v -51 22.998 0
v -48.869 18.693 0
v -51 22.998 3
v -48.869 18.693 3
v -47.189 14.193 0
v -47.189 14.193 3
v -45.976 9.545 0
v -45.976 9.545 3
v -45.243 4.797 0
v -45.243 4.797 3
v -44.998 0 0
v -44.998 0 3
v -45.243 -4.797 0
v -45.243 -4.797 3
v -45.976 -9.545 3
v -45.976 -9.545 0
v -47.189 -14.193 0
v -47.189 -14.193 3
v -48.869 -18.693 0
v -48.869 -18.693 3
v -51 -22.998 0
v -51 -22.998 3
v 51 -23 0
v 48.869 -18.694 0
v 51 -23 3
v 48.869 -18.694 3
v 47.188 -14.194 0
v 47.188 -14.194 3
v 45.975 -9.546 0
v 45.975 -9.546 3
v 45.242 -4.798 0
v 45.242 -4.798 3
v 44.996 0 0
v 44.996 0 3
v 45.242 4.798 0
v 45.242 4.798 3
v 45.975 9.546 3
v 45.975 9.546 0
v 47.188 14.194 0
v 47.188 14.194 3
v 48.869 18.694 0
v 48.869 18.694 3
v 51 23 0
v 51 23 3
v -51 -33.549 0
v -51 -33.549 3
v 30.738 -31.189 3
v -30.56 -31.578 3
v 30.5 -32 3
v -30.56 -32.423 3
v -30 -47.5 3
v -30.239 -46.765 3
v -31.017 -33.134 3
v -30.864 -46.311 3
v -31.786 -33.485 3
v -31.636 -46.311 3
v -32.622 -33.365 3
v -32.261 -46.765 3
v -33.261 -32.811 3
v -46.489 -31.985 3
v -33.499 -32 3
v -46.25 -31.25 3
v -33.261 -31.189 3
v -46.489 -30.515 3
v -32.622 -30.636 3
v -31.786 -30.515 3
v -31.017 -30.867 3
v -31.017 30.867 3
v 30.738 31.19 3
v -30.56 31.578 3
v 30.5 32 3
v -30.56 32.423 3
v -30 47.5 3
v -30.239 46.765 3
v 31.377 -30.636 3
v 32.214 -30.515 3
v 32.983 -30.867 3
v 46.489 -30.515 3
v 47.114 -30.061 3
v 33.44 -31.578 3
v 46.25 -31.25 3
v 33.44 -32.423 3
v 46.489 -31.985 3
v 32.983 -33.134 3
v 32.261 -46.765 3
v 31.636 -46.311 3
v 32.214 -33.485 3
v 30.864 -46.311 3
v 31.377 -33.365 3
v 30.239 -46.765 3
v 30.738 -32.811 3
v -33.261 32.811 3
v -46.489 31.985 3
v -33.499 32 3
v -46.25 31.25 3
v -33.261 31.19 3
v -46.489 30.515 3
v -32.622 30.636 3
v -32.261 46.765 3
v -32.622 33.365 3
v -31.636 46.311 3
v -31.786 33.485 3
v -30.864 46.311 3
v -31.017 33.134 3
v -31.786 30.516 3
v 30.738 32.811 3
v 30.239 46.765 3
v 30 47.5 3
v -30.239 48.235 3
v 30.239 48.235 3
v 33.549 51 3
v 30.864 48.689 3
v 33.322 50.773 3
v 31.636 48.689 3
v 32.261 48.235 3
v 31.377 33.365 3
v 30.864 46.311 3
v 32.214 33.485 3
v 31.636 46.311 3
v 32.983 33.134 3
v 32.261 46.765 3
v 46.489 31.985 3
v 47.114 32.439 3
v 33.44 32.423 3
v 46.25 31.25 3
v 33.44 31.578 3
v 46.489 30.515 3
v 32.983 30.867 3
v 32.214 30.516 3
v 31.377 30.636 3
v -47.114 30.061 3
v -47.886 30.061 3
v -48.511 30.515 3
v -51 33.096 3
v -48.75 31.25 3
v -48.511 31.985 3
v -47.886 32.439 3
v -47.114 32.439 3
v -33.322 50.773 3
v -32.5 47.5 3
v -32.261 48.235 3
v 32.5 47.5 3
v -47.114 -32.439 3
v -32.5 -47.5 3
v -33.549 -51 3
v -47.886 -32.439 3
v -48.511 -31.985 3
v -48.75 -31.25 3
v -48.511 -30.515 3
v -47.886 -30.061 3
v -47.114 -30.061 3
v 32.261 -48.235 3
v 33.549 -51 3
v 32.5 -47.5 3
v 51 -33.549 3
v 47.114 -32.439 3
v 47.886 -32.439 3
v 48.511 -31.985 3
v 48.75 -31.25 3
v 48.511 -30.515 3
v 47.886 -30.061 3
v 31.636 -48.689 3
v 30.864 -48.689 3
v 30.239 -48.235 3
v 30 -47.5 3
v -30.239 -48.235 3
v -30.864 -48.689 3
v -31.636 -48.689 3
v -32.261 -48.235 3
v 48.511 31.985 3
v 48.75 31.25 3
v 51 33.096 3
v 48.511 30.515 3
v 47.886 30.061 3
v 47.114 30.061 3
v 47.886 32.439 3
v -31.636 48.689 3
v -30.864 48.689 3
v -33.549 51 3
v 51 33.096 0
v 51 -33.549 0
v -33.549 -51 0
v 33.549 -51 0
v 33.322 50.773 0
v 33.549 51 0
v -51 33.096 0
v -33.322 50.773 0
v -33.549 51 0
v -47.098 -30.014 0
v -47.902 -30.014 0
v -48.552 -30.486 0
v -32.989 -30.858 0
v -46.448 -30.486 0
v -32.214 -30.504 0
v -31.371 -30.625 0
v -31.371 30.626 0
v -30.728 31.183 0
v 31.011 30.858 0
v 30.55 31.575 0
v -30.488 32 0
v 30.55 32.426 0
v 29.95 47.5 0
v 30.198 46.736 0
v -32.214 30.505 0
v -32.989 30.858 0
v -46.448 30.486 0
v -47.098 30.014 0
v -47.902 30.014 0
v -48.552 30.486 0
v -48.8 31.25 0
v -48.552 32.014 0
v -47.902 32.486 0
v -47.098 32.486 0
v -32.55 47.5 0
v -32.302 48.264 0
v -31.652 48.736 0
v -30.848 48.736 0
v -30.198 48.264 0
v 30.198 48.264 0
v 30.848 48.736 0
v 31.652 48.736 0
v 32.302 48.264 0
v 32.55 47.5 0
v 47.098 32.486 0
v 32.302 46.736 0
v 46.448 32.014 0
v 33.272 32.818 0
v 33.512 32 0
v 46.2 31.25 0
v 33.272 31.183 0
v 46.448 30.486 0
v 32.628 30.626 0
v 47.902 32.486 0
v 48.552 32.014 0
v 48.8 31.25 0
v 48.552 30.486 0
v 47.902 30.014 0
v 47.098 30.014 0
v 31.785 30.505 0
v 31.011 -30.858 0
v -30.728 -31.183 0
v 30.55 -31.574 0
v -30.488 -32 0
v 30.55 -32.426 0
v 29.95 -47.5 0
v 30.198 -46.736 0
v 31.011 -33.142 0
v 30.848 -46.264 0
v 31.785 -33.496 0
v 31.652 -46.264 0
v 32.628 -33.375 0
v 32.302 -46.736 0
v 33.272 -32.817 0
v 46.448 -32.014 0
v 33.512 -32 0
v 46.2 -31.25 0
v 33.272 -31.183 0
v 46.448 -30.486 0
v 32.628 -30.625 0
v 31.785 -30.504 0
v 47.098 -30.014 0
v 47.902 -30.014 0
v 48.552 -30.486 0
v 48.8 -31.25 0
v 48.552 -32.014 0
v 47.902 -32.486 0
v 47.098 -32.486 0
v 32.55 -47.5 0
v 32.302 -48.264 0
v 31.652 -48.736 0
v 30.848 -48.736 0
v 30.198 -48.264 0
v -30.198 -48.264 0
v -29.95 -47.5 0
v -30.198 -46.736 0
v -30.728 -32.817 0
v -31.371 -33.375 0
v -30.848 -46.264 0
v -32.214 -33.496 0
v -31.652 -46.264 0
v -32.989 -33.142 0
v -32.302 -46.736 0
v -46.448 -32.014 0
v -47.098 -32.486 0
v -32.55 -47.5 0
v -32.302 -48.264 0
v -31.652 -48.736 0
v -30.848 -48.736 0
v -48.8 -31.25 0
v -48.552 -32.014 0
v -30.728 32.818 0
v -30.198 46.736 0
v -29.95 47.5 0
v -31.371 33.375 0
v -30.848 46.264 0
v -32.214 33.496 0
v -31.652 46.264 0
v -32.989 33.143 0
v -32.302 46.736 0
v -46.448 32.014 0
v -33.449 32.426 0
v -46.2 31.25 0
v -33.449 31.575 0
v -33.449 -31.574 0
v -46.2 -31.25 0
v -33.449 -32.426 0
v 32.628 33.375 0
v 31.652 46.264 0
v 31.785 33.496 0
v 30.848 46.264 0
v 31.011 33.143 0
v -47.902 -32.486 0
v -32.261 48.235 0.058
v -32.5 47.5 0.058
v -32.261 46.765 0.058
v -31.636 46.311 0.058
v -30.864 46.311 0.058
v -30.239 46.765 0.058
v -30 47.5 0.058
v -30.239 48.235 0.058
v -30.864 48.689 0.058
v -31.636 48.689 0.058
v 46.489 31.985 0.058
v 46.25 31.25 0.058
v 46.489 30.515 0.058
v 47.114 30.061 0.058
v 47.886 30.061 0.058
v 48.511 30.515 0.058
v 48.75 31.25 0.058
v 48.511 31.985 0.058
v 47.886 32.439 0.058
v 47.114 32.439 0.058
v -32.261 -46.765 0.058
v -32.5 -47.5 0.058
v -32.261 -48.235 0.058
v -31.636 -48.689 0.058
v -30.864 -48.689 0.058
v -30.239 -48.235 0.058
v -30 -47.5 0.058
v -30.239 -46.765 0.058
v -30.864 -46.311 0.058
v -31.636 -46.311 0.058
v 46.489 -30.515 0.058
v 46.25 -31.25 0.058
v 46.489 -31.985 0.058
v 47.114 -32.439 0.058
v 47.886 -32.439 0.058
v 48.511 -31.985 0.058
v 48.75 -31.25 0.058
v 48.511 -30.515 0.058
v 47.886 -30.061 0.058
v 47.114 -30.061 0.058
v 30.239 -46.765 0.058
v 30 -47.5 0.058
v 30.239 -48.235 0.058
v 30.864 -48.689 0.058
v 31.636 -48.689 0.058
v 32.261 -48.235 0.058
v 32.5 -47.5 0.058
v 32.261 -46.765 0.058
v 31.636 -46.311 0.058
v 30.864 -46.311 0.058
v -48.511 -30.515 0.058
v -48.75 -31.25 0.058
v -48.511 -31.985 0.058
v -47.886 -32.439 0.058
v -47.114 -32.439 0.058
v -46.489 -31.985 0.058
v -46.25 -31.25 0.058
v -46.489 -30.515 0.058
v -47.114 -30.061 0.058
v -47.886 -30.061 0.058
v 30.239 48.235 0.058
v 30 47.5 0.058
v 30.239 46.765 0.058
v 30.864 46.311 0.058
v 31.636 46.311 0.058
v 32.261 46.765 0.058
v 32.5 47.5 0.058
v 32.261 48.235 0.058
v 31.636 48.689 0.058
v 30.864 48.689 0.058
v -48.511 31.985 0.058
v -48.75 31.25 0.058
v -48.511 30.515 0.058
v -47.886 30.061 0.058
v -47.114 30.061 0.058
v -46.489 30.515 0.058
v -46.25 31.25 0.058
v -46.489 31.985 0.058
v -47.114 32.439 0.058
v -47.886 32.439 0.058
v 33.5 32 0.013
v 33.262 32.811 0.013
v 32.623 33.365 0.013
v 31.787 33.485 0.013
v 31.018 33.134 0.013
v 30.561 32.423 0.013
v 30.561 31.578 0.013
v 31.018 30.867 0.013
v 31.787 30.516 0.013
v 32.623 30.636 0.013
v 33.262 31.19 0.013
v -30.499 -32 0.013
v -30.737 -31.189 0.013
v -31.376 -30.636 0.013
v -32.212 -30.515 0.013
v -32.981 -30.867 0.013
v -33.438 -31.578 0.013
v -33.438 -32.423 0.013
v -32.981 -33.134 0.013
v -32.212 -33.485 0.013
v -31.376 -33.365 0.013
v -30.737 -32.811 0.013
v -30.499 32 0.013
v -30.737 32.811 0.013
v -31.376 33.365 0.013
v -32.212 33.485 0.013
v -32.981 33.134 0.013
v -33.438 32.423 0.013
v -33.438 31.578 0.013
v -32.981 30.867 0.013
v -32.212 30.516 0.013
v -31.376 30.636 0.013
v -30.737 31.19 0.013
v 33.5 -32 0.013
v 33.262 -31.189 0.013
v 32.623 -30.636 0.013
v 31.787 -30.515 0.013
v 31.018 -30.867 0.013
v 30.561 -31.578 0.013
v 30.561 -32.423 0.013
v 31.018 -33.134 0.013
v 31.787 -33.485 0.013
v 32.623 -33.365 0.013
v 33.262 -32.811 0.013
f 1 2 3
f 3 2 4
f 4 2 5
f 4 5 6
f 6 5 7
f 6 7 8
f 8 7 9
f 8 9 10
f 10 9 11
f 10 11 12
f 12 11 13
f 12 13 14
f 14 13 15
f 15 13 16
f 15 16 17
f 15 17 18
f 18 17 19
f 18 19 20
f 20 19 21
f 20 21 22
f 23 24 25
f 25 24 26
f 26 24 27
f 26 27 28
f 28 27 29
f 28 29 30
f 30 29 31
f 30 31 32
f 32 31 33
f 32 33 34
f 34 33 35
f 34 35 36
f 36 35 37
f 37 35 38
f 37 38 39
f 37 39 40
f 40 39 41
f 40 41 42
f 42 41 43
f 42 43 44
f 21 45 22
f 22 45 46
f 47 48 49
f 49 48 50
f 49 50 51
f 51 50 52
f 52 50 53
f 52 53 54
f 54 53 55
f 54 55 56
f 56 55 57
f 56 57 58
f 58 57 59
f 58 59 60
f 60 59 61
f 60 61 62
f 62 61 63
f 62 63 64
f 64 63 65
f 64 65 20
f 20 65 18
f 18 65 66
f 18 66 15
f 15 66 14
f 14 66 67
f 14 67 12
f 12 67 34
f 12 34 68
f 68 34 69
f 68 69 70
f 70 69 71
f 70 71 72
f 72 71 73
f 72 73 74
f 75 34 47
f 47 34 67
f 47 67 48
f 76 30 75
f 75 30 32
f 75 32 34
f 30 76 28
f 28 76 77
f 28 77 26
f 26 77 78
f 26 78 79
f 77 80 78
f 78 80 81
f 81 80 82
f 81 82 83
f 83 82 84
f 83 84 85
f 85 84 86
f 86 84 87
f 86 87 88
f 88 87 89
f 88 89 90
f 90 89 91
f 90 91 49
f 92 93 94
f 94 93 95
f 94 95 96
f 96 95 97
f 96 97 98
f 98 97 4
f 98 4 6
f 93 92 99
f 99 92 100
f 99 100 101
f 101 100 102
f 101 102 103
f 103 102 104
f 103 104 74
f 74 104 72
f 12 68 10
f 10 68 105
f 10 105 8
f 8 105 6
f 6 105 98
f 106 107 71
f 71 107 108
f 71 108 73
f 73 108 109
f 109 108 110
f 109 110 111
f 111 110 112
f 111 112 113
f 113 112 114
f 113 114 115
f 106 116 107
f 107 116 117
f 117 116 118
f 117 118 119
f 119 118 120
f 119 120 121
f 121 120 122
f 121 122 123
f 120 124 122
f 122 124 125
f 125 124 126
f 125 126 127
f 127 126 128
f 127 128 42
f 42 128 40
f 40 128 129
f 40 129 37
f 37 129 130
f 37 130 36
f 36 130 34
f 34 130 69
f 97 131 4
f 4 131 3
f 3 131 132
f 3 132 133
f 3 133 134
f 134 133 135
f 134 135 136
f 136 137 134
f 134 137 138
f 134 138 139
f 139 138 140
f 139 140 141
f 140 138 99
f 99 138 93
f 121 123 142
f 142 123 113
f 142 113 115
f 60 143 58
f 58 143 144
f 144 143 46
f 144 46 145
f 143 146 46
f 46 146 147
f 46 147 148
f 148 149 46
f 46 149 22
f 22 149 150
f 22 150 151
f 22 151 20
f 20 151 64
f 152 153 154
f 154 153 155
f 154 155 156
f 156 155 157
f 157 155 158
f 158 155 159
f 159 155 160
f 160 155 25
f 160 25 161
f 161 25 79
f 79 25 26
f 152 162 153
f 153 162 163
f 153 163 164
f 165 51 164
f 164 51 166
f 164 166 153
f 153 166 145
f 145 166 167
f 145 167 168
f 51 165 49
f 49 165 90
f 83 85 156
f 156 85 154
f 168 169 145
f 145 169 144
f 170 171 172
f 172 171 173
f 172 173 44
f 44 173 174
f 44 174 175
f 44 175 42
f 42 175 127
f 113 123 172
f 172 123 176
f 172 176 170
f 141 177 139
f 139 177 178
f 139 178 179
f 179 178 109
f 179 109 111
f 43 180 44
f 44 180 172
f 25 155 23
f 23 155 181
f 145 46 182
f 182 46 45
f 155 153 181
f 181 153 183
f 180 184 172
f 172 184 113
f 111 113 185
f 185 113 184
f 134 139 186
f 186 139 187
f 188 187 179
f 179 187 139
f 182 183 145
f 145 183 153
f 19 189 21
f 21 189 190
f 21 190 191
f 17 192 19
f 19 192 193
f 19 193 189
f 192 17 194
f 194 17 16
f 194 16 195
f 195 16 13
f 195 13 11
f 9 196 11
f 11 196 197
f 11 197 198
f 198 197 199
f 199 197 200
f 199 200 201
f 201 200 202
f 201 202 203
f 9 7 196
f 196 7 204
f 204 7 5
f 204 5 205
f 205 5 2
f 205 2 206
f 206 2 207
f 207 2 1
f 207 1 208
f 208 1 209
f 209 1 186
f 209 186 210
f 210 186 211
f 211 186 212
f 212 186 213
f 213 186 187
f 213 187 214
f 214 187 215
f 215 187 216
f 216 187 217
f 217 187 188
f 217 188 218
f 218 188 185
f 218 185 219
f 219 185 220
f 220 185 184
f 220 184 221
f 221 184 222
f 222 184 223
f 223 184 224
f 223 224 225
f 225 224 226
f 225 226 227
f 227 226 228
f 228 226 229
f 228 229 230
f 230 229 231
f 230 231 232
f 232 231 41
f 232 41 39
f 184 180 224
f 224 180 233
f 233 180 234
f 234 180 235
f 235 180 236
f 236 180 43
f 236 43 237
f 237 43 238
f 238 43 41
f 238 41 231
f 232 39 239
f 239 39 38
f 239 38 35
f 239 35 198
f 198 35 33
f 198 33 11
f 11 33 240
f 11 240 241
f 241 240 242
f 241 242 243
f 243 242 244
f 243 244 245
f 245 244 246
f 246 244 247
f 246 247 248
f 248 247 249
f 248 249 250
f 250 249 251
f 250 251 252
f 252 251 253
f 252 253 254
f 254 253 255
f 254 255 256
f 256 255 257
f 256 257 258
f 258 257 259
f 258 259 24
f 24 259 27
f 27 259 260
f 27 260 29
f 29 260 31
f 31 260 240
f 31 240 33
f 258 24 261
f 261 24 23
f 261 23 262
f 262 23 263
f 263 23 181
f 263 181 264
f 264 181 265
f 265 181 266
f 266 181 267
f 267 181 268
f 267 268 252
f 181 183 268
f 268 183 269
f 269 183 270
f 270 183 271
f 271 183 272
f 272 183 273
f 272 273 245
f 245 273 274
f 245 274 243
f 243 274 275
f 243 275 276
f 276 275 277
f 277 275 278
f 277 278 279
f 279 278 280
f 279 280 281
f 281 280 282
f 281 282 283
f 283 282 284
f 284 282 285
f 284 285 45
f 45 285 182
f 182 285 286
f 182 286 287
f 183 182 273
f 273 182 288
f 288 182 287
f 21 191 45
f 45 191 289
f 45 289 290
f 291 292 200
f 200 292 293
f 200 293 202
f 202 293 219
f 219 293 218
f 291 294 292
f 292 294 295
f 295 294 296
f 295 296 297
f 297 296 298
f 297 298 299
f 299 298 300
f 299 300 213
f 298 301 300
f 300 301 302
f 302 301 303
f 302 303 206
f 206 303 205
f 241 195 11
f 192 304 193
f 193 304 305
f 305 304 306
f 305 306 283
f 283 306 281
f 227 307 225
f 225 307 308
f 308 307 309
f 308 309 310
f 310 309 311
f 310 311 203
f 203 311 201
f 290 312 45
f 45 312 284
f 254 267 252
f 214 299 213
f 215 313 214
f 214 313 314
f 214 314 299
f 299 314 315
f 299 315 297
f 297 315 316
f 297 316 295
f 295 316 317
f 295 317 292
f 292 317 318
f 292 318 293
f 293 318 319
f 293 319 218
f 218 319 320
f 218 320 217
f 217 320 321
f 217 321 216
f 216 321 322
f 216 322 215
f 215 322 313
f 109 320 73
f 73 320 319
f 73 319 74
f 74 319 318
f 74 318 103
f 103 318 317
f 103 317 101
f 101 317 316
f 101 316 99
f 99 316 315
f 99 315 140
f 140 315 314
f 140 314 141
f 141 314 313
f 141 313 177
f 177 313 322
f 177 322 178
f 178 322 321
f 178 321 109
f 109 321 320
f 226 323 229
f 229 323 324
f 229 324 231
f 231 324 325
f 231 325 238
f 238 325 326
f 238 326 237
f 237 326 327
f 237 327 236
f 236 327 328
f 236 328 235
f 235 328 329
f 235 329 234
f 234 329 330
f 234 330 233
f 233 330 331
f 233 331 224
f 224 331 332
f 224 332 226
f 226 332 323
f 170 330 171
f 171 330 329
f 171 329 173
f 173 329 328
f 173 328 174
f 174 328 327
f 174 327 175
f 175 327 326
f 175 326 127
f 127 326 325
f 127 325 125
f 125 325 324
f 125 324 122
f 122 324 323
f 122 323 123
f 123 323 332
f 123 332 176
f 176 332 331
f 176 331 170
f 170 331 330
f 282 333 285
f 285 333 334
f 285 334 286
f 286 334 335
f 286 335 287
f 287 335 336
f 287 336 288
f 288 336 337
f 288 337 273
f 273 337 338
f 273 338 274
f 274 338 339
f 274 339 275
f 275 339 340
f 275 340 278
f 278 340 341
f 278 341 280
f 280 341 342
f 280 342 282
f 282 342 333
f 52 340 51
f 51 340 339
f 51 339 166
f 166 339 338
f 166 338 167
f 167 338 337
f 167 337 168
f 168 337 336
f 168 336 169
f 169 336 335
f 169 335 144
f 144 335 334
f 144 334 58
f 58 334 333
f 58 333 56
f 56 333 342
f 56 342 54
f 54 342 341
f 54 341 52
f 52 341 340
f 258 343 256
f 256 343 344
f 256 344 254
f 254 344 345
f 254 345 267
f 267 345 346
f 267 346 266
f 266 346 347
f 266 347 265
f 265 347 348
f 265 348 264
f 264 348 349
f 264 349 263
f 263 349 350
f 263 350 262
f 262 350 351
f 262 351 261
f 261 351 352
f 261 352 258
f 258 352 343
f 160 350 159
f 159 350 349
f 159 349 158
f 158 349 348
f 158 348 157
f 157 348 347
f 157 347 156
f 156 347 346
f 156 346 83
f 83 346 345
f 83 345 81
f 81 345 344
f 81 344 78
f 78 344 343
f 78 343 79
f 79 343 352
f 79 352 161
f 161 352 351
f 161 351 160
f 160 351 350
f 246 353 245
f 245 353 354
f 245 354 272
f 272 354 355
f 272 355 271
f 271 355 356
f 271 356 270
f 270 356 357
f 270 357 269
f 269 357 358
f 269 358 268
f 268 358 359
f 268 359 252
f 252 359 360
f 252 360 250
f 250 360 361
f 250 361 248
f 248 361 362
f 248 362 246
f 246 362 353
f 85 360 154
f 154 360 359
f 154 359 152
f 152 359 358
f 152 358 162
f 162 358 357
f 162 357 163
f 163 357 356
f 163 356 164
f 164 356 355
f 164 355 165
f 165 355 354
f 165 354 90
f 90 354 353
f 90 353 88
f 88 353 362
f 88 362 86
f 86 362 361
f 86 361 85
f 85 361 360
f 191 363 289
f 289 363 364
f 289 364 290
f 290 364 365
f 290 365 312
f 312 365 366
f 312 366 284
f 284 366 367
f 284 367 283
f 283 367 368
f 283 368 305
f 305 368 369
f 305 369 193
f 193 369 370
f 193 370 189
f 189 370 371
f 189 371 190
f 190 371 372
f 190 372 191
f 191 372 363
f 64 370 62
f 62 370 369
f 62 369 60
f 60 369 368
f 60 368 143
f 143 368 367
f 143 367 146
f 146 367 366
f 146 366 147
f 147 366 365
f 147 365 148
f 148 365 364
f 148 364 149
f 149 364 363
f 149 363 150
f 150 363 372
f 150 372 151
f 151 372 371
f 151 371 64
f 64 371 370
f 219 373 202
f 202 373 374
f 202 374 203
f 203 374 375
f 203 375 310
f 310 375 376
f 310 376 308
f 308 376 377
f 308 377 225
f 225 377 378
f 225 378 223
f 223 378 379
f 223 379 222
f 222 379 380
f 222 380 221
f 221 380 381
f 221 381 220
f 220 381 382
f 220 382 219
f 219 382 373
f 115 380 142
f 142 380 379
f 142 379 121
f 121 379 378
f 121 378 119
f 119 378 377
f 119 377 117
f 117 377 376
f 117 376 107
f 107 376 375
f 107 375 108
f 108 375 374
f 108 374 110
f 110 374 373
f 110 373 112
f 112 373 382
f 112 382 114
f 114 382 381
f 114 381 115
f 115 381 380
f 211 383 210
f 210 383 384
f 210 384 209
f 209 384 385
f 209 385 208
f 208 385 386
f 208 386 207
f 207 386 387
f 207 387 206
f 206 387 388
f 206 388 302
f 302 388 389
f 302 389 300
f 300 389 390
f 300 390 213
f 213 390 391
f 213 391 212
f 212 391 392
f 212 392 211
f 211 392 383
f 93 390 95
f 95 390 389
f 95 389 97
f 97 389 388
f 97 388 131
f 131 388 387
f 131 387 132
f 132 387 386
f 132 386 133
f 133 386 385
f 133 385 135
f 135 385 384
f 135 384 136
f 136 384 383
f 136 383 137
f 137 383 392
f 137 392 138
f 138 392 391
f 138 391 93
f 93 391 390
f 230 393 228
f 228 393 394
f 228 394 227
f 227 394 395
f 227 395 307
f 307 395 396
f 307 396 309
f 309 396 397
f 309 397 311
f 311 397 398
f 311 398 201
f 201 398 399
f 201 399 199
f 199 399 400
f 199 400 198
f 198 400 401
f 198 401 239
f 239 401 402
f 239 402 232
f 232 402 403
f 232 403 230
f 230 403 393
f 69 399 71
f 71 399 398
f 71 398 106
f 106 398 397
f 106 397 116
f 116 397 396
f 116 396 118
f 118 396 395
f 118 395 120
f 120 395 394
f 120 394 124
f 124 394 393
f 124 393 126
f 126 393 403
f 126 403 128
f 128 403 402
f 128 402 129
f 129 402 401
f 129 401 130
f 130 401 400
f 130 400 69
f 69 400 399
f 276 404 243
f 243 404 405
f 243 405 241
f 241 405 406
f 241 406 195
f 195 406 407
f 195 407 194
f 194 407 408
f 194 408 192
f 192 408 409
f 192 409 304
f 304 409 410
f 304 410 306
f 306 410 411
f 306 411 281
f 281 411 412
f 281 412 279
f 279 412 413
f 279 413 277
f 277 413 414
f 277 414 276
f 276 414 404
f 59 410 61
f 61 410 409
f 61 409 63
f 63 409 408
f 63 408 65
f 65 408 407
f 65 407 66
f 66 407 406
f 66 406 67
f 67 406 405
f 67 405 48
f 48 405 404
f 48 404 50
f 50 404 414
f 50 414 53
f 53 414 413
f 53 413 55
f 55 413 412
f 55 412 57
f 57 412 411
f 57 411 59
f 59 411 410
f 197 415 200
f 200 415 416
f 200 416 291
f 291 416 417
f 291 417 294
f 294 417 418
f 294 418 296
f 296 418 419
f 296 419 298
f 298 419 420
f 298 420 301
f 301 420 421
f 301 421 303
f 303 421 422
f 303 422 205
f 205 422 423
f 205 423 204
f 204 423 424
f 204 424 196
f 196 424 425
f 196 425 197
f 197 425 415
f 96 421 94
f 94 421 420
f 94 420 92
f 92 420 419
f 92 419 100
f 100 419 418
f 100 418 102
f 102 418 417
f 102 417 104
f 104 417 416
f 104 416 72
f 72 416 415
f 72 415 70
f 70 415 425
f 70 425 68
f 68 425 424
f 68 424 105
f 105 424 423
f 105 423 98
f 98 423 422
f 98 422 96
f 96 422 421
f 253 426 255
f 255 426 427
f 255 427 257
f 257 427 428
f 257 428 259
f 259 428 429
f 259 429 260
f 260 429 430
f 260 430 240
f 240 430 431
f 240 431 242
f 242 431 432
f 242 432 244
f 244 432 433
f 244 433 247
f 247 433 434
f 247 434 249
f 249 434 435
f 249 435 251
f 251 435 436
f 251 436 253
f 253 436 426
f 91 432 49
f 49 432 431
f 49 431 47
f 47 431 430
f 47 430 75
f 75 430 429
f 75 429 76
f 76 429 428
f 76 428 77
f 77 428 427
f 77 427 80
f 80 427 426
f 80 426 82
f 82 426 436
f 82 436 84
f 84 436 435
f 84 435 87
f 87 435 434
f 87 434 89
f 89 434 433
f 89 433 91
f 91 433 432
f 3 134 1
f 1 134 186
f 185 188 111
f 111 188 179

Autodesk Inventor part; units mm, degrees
ref_plane "YZ Plane" through (0, 0, 0) normal (1, 0, 0) x (0, 1, 0)
ref_plane "XZ Plane" through (0, 0, 0) normal (0, 1, 0) x (-1, 0, 0)
ref_plane "XY Plane" through (0, 0, 0) normal (0, 0, 1) x (1, 0, 0)
sketch "Sketch3" plane through (0, 0, 0) normal (0, 0, 1) x (1, 0, 0)
  line L0 (50.9998, -51.0001) -> (-50.9998, -51.0001)
  line L1 (-50.9998, -51.0001) -> (-50.9998, 51.0001)
  line L2 (-50.9998, 51.0001) -> (50.9998, 51.0001)
  line L3 (50.9998, 51.0001) -> (50.9998, -51.0001)
  line L4 (50.9998, -51.0001) -> (-50.9998, 51.0001) construction
  line L5 (-50.9998, -51.0001) -> (50.9998, 51.0001) construction
  point P0 (0, 0)
  dimension "d2" = 101.9996
  dimension "d3" = 102.0002
sketch "Sketch7" plane through (0, 0, 0) normal (0, 0, 1) x (1, 0, 0)
  circle A0 centre (32.0004, 32.0005) radius 1.5002
  circle A1 centre (-31.9991, 32.0005) radius 1.5002
  circle A2 centre (-31.999, 32.0005) radius 1.5002
  circle A3 centre (-31.9991, -32.0002) radius 1.5002
  circle A4 centre (-31.999, -32.0002) radius 1.5002
  circle A5 centre (32.0003, -32.0002) radius 1.5002
  circle A6 centre (32.0004, -32.0002) radius 1.5002
extrude "Extrusion2" add sketch "Sketch3" along normal blind 3
hole "Hole1" at (-31.999, -32.0002, 0) at (-31.999, 32.0005, 0) at (32.0004, 32.0005, 0) at (32.0004, -32.0002, 0) direction (0, 0, 1) diameter 3 end through all countersink diameter 3.0226 countersink angle 82
sketch "Sketch8" plane through (0, 0, 0) normal (0, 0, -1) x (-1, 0, 0)
  circle A0 centre (47.5, 31.25) radius 1.2502
  circle A1 centre (31.25, 47.5) radius 1.2502
  circle A2 centre (-47.5, -31.25) radius 1.2502
  circle A3 centre (-31.25, -47.5) radius 1.2502
  circle A4 centre (-47.5, 31.25) radius 1.2502
  circle A5 centre (-31.25, 47.5) radius 1.2502
  circle A6 centre (47.5, -31.25) radius 1.2502
  circle A7 centre (31.25, -47.5) radius 1.2502
hole "Hole2" at (47.5, -31.25, 0) at (31.25, -47.5, 0) at (-31.25, -47.5, 0) at (-47.5, -31.25, 0) at (47.5, 31.25, 0) at (31.25, 47.5, 0) at (-31.25, 47.5, 0) at (-47.5, 31.25, 0) direction (0, 0, 1) diameter 2.5 end through all countersink diameter 2.6 countersink angle 82
sketch "Sketch9" plane through (0, 0, 0) normal (0, 0, -1) x (-1, 0, 0)
  point P0 (0, 0)
sketch "Sketch10" plane through (0, 0, 0) normal (0, 0, -1) x (-1, 0, 0)
  point P0 (0, 0)
sketch "Sketch11" plane through (0, 0, 0) normal (0, 0, -1) x (-1, 0, 0)
  line L0 (68.6779, 50.7734) -> (50.9999, 33.0954)
  line L1 (50.9999, 33.0954) -> (33.3221, 50.7732)
  line L2 (33.3221, 50.7732) -> (51.0001, 68.4512)
  line L3 (51.0001, 68.4512) -> (68.6779, 50.7734)
  line L4 (68.6779, 50.7734) -> (33.3221, 50.7732) construction
  line L5 (50.9999, 33.0954) -> (51.0001, 68.4512) construction
  line L6 (-33.3221, 50.7734) -> (-51.0001, 33.0954)
  line L7 (-51.0001, 33.0954) -> (-68.6779, 50.7732)
  line L8 (-68.6779, 50.7732) -> (-50.9999, 68.4512)
  line L9 (-50.9999, 68.4512) -> (-33.3221, 50.7734)
  line L10 (-33.3221, 50.7734) -> (-68.6779, 50.7732) construction
  line L11 (-51.0001, 33.0954) -> (-50.9999, 68.4512) construction
  line L12 (-33.3221, -51.2266) -> (-51.0001, -68.9046)
  line L13 (-51.0001, -68.9046) -> (-68.6779, -51.2268)
  line L14 (-68.6779, -51.2268) -> (-50.9999, -33.5488)
  line L15 (-50.9999, -33.5488) -> (-33.3221, -51.2266)
  line L16 (-33.3221, -51.2266) -> (-68.6779, -51.2268) construction
  line L17 (-51.0001, -68.9046) -> (-50.9999, -33.5488) construction
  line L18 (68.6779, -51.2266) -> (50.9999, -68.9046)
  line L19 (50.9999, -68.9046) -> (33.3221, -51.2268)
  line L20 (33.3221, -51.2268) -> (51.0001, -33.5488)
  line L21 (51.0001, -33.5488) -> (68.6779, -51.2266)
  line L22 (68.6779, -51.2266) -> (33.3221, -51.2268) construction
  line L23 (50.9999, -68.9046) -> (51.0001, -33.5488) construction
  point P0 (51, 50.7733)
  point P1 (-51, 50.7733)
  point P2 (-51, -51.2267)
  point P3 (51, -51.2267)
extrude "Extrusion3" cut sketch "Sketch11" against normal blind 3
sketch "Sketch12" plane through (0, 0, 0) normal (0, 0, -1) x (-1, 0, 0)
  line L0 (-50.9998, -33.5489) -> (-50.9998, 33.0957) projected
  arc A0 (-50.9998, -22.9999) -> (-50.9998, 22.9999) centre (-92.056, 0) ccw
  line L1 (-50.9998, 22.9999) -> (-50.9998, -22.9999)
  arc A1 (51.0009, 22.9999) -> (51.0009, -22.9999) centre (92.0571, 0) ccw
  line L2 (51.0009, -22.9999) -> (51.0009, 22.9999)
  point P0 (0, 0)
extrude "Extrusion4" cut sketch "Sketch12" against normal blind 3
properties part number "F450_GPS_mount." material "CFRP"
